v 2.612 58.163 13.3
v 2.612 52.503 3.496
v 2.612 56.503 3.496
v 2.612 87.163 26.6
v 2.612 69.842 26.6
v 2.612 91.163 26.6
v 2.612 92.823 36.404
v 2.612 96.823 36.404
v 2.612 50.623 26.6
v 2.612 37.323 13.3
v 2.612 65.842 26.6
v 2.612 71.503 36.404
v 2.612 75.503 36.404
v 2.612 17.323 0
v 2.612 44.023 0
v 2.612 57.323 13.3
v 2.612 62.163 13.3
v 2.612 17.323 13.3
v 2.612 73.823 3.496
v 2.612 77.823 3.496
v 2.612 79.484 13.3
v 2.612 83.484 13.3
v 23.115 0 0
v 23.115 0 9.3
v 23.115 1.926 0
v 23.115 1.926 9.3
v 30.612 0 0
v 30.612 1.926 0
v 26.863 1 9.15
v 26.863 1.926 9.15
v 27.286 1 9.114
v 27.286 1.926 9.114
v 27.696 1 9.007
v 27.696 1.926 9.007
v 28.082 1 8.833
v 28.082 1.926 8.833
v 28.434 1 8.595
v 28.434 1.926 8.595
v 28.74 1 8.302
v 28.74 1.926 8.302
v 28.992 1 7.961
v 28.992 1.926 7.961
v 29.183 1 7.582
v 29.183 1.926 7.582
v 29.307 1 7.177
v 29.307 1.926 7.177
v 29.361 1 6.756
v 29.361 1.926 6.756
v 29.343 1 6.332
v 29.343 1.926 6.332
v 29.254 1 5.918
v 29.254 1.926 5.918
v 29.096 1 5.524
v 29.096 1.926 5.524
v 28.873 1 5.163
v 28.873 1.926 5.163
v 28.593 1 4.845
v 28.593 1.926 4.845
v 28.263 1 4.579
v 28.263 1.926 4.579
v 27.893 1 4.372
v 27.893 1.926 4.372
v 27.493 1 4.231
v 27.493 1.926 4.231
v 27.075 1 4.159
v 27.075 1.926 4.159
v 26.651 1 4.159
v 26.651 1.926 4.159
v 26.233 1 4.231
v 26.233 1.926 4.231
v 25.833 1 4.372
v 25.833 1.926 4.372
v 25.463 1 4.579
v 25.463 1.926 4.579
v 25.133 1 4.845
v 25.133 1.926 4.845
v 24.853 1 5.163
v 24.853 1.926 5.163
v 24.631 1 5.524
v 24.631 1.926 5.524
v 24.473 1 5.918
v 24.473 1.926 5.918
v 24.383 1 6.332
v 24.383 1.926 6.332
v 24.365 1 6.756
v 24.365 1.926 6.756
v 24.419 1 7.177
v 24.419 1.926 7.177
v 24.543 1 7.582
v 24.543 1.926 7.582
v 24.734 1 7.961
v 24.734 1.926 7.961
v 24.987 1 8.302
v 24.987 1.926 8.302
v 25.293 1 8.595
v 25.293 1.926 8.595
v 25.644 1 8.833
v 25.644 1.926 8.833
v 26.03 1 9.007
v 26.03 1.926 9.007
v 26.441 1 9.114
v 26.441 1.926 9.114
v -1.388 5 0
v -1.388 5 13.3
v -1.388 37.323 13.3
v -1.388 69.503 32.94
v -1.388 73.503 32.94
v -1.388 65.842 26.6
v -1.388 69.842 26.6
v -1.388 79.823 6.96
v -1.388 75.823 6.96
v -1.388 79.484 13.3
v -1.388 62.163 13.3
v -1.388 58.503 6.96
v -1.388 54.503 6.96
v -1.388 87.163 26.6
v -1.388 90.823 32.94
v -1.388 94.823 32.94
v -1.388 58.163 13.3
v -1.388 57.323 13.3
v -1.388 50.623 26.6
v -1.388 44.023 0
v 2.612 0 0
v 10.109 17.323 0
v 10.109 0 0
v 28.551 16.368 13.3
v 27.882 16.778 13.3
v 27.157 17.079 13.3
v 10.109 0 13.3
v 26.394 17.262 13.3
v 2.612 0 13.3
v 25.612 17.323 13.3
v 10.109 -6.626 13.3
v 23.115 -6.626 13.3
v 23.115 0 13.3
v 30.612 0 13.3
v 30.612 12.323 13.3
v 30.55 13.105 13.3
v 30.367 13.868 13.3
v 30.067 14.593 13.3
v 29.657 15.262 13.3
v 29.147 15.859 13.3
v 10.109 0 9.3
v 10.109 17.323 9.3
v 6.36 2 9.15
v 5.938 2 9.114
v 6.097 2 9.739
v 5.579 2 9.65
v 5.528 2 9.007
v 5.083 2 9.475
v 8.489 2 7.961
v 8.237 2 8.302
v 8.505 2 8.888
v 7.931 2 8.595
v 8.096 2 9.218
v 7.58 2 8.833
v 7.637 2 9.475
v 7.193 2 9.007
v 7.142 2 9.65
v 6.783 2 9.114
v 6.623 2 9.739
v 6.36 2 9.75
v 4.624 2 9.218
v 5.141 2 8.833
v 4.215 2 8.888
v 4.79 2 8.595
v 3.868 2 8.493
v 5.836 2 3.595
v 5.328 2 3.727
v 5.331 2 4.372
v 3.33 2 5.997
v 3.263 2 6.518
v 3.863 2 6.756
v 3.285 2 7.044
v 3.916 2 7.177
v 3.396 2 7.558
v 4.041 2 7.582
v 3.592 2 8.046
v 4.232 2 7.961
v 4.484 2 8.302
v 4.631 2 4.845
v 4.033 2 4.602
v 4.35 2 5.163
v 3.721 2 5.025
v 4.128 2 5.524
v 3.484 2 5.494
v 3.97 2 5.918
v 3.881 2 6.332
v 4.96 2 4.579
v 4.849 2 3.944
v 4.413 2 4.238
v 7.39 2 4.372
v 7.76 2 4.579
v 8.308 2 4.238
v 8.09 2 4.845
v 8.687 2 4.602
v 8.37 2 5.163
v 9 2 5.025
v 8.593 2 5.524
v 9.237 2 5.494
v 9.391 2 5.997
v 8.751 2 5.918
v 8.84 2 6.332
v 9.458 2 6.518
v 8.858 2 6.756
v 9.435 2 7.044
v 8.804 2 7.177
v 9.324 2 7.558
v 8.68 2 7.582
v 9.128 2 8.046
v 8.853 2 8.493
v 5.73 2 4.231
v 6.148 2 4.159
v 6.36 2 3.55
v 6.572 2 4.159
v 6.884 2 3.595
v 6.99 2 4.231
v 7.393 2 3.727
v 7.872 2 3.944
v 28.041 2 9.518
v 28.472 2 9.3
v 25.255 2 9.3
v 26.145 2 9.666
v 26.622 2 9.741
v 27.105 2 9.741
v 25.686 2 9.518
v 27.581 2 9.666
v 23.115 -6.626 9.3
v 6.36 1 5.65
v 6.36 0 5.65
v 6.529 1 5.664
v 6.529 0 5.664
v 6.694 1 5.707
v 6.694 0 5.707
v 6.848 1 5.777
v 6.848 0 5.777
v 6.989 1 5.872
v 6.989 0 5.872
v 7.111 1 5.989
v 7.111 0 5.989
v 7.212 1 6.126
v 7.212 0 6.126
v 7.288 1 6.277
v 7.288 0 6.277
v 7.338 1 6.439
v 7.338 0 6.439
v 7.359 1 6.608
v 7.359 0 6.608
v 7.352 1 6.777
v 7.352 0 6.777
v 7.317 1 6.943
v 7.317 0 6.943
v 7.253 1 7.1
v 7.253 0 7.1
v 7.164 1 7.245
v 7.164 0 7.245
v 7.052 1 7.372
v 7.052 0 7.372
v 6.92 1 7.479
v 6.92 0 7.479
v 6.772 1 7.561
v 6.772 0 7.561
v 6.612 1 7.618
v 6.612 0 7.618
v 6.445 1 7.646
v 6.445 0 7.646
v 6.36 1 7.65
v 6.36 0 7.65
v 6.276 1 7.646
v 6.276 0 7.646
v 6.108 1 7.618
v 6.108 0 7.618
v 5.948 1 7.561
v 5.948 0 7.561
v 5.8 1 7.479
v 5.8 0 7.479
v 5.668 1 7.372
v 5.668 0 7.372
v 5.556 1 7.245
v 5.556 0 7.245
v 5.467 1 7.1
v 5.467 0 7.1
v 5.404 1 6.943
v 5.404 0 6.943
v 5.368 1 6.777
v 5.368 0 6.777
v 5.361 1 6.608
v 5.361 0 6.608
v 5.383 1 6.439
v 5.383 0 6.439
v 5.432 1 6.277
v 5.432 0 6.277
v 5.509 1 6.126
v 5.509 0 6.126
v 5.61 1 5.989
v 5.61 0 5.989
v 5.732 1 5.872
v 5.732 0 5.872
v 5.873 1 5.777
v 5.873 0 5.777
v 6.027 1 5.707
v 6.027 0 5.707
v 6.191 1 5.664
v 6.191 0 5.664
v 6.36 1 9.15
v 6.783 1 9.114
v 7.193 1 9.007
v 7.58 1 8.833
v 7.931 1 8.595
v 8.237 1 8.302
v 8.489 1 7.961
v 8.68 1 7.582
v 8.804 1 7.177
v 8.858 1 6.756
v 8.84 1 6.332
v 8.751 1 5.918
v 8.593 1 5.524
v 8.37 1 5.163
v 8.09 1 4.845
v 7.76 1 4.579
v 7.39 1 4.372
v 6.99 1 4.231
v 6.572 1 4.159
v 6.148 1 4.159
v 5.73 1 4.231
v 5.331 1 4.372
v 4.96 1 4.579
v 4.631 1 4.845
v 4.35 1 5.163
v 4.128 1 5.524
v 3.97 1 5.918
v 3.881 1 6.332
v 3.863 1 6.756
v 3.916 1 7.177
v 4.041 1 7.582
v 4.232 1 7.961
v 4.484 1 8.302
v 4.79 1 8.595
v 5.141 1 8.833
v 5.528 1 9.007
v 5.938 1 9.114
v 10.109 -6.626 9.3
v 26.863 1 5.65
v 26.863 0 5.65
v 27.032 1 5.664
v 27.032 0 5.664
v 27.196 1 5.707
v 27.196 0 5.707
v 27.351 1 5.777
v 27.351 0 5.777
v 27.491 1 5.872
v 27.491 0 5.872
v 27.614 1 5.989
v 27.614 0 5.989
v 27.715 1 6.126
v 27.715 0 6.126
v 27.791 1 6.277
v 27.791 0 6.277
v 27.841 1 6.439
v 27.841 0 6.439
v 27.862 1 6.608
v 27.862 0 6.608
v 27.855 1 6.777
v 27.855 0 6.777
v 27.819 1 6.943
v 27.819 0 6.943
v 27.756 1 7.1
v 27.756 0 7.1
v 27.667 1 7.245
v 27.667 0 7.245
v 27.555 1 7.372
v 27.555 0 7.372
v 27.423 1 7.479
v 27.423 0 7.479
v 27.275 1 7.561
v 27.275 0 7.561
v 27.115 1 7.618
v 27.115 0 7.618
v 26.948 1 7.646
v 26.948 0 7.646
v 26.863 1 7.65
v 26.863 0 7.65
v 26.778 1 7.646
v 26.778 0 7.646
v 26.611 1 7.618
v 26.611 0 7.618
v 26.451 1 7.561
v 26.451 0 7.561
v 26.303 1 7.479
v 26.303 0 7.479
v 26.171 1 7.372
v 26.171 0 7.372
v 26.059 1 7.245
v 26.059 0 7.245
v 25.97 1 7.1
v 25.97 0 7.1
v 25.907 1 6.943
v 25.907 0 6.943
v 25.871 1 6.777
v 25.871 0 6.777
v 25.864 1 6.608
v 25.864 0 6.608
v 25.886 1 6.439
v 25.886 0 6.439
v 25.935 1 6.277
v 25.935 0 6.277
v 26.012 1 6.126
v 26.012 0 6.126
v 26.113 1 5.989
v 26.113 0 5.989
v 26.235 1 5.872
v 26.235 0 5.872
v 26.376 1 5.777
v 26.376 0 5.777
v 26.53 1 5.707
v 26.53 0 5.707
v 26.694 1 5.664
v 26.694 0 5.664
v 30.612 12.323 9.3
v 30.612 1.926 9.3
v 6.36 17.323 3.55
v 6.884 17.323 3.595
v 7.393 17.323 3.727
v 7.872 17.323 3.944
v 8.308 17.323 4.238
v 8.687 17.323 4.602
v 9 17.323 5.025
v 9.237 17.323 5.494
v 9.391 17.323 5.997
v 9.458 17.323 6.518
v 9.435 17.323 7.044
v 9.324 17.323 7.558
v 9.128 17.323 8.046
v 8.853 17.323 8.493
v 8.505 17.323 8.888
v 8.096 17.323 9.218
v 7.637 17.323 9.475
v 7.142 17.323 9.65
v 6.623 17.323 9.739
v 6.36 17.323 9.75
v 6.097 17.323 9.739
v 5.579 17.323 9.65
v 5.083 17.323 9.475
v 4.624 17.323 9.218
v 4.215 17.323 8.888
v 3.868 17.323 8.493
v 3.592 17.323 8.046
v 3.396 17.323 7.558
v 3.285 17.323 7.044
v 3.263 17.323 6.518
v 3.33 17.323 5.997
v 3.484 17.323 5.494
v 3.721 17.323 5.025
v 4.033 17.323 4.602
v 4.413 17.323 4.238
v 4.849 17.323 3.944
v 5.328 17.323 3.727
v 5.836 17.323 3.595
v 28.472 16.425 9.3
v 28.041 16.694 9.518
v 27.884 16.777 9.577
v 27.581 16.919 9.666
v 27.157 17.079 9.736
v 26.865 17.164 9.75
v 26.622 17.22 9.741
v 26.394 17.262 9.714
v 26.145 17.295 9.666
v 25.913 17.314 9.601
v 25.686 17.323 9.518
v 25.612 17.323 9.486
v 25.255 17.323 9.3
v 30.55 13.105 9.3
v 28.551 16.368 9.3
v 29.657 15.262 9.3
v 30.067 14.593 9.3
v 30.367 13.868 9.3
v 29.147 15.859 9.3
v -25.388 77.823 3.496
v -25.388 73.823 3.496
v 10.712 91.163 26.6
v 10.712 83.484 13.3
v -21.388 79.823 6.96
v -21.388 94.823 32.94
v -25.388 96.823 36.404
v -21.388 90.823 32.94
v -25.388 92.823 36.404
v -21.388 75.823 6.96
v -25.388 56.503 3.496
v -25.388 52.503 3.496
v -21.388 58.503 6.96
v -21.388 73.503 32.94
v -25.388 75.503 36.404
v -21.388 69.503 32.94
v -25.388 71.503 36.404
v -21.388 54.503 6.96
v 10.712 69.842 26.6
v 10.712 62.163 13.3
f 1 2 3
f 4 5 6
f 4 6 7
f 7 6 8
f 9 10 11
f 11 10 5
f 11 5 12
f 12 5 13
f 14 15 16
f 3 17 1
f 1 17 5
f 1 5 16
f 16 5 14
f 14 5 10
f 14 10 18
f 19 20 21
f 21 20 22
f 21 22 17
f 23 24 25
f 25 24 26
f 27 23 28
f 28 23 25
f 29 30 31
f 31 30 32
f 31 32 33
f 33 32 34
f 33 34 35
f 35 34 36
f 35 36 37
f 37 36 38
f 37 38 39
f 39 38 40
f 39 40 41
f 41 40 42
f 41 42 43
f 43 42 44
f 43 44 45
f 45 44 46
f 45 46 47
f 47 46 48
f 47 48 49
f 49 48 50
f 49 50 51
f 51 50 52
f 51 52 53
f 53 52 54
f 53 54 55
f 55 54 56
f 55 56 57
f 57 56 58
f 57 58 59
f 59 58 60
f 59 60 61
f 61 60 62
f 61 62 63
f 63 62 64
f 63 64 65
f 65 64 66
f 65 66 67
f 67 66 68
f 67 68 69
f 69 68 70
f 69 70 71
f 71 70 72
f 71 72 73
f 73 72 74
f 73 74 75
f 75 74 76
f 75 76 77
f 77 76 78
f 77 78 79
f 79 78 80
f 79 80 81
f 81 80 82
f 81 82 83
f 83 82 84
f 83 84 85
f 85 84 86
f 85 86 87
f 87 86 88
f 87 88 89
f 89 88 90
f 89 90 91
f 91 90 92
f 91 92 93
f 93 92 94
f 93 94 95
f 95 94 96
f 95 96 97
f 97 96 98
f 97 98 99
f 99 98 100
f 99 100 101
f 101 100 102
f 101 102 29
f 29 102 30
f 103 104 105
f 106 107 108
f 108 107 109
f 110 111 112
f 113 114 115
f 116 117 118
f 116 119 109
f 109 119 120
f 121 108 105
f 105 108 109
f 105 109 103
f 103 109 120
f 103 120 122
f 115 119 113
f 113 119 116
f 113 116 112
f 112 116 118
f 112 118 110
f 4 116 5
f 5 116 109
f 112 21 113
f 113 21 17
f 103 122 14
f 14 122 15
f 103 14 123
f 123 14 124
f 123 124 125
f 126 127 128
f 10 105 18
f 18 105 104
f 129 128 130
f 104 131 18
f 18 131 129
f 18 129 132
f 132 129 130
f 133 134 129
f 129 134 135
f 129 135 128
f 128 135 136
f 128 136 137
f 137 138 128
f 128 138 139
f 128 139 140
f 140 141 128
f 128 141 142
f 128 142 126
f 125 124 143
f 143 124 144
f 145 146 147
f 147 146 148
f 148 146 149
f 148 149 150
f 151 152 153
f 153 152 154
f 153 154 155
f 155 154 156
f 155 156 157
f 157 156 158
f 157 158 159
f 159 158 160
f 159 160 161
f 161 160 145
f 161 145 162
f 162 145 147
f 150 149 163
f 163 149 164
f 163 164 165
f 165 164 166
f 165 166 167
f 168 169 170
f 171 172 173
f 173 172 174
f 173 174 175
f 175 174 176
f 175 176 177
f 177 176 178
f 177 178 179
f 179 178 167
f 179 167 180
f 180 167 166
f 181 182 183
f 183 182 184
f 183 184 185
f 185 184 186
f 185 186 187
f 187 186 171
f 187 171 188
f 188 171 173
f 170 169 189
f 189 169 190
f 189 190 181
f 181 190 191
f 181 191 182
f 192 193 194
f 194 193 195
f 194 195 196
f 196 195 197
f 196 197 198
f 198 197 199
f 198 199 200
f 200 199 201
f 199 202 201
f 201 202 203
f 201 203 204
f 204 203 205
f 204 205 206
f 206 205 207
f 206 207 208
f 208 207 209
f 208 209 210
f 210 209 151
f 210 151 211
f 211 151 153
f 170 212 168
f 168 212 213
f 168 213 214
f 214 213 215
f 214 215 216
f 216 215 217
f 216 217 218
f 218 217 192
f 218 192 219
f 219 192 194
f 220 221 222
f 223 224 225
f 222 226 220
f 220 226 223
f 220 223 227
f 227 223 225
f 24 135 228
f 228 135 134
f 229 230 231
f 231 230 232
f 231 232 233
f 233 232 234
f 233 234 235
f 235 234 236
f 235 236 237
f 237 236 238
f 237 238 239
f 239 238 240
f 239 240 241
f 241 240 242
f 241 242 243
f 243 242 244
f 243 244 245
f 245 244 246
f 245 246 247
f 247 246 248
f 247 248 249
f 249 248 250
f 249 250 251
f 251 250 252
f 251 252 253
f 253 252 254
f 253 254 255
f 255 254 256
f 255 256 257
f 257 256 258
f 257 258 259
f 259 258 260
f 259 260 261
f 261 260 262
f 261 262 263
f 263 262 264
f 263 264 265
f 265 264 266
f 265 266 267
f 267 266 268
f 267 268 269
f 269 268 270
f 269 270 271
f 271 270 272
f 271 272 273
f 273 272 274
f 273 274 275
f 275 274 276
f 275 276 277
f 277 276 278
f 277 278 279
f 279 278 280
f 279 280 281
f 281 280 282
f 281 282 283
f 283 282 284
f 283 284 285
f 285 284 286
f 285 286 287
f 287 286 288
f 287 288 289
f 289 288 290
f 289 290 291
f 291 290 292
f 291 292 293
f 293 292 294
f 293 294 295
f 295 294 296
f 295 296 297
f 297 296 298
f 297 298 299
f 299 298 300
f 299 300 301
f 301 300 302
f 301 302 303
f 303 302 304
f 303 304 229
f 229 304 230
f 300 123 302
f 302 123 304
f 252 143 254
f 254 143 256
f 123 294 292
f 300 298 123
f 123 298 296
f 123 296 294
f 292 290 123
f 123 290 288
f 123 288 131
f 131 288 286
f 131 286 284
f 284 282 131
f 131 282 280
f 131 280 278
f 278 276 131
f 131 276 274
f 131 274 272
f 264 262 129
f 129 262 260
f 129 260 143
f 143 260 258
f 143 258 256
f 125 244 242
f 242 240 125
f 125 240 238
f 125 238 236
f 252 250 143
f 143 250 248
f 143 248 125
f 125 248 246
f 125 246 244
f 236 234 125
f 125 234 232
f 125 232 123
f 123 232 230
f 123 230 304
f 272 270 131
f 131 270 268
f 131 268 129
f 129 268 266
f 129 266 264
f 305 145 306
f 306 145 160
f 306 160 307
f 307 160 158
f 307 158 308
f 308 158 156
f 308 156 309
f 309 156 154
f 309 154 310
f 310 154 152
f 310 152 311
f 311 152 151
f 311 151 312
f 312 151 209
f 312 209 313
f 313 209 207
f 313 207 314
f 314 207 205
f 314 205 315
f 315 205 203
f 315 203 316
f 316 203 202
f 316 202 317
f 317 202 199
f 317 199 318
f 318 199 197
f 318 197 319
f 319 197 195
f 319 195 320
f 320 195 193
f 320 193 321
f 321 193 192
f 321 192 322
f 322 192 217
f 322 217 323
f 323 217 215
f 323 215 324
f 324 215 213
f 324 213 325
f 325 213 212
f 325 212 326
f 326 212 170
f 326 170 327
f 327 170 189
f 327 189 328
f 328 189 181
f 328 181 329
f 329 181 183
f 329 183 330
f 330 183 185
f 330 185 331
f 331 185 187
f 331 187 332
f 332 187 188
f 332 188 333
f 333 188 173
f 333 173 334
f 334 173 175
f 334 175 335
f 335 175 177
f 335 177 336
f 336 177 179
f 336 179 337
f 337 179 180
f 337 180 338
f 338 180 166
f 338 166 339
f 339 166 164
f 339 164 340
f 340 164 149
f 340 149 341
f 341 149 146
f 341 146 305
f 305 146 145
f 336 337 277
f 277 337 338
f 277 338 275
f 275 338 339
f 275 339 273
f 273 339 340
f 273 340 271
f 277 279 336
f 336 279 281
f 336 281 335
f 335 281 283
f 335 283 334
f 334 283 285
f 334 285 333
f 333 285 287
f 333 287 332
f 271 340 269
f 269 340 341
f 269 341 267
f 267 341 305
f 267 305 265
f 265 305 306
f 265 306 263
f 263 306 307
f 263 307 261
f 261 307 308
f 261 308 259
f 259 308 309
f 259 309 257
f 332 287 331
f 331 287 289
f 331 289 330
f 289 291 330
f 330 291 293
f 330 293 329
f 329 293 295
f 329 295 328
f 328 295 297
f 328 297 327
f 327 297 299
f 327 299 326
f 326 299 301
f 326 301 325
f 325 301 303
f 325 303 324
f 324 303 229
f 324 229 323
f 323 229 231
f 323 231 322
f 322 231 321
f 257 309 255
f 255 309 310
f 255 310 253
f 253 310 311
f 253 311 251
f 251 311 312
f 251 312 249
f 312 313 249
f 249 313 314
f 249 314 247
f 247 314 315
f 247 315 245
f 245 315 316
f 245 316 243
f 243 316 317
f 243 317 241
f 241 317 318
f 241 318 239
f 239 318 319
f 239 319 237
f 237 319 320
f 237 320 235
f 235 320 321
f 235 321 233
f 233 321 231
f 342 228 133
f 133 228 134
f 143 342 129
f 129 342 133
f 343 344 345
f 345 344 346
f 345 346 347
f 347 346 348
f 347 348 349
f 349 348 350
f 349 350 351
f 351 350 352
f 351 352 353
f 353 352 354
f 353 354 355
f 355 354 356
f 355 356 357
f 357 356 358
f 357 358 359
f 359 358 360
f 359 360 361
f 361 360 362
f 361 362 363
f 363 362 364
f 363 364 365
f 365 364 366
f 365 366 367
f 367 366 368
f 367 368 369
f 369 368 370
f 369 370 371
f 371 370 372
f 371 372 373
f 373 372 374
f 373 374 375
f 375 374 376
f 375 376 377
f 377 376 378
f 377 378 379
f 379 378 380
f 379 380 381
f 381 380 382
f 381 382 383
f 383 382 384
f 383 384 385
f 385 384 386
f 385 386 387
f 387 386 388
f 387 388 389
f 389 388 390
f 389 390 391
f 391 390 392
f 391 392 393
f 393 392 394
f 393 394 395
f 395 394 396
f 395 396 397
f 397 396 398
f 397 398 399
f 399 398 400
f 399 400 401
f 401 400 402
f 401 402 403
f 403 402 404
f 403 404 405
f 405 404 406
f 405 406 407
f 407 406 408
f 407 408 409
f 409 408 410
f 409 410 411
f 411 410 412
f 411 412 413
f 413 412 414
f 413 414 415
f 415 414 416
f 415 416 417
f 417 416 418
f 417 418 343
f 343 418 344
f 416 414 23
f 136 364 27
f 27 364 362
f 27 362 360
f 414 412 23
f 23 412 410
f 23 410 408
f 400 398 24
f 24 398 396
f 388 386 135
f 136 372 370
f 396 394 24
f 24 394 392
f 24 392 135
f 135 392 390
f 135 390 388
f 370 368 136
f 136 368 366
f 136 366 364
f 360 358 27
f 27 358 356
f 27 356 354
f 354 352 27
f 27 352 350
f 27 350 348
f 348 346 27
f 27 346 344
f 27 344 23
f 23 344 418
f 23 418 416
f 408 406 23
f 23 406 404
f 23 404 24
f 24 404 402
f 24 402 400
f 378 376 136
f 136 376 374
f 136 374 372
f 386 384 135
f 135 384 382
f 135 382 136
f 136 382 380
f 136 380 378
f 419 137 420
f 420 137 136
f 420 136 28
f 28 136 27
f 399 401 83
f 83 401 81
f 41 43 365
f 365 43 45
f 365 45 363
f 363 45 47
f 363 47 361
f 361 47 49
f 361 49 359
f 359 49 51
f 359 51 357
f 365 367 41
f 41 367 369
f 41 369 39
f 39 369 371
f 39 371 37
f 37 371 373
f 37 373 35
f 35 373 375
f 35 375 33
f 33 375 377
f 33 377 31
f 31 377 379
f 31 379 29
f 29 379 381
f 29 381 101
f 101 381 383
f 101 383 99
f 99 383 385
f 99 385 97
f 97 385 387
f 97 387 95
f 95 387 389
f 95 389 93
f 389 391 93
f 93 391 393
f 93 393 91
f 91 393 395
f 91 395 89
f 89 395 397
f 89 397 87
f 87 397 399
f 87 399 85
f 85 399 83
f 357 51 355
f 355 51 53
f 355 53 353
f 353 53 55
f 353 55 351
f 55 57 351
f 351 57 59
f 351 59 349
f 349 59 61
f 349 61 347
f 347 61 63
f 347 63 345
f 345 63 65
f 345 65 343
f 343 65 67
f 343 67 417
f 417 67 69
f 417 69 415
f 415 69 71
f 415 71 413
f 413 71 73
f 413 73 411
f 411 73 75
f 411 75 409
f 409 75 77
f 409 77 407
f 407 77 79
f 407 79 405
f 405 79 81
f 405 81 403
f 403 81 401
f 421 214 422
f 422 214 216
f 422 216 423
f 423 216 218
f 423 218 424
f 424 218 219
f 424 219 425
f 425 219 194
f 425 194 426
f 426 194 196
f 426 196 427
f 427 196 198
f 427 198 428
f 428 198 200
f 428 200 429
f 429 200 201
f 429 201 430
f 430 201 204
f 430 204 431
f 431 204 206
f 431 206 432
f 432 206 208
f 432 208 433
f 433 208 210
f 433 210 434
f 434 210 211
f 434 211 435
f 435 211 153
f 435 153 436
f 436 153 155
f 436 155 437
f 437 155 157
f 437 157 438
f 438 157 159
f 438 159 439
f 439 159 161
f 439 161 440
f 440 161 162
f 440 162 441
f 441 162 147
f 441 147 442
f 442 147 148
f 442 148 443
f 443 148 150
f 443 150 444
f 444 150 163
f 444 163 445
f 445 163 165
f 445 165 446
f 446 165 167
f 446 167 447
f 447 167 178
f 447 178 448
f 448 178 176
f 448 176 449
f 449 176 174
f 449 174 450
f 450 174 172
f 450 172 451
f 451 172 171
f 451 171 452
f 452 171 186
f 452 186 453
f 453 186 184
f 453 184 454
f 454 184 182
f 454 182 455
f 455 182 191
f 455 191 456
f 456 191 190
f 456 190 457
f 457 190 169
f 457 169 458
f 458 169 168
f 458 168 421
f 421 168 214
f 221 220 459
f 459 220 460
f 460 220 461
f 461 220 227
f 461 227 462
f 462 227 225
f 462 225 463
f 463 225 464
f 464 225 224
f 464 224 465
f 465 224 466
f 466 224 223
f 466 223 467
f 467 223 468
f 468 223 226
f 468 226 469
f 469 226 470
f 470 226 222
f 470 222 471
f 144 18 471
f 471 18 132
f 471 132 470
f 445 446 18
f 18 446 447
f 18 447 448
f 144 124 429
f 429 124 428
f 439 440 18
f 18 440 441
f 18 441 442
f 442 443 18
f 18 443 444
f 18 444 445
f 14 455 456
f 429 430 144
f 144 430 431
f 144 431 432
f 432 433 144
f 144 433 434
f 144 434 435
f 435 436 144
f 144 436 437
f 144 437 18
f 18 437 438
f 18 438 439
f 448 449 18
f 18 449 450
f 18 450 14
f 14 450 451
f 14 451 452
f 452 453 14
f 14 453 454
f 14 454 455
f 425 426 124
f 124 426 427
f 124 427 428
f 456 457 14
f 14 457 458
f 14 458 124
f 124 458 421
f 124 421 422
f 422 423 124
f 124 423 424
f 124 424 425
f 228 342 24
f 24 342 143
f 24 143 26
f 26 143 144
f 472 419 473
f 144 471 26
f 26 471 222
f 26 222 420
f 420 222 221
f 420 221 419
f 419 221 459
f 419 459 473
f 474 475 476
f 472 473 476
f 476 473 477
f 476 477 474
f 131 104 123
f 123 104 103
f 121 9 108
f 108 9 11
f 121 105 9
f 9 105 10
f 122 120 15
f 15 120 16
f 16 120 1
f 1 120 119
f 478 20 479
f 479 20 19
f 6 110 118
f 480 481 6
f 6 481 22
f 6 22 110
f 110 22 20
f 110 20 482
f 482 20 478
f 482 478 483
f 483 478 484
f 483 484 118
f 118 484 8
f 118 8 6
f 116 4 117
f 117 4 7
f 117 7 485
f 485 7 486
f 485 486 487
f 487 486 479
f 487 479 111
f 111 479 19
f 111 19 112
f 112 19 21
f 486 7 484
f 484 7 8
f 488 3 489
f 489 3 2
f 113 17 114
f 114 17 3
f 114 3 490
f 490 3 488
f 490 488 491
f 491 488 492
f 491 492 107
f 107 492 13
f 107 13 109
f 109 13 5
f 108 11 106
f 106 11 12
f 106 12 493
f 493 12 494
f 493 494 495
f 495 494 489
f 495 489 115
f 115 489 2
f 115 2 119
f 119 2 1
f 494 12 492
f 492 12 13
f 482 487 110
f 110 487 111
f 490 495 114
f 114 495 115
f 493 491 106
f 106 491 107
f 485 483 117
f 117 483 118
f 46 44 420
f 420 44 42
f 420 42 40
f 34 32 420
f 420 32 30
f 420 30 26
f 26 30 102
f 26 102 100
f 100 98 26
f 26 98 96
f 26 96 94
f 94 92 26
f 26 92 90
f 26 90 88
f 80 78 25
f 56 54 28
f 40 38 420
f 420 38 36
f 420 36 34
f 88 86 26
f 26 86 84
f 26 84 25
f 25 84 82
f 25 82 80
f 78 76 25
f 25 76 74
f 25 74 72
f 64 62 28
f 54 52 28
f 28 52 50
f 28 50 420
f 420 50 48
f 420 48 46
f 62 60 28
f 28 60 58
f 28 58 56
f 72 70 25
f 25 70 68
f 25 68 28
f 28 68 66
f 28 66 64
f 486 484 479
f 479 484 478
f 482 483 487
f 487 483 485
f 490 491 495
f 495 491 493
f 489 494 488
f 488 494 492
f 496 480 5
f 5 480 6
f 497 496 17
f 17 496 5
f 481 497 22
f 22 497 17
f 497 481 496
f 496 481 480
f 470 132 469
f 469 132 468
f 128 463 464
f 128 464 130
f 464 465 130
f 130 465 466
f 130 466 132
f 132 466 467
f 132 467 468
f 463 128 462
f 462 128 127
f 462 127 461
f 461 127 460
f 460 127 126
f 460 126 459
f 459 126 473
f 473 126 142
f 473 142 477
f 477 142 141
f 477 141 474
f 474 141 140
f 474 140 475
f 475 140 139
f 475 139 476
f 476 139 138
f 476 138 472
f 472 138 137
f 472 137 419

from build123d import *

# Parameters (mm, degrees)
SKETCH1_W             = 7.497163216
SKETCH1_H             = 13.3
SKETCH1_R             = 1
BOSS_EXTRUDE1_DEPTH   = 2
BOSS_EXTRUDE1_2_DEPTH = 2
SKETCH3_R             = 2.5
CUT_EXTRUDE1_DEPTH    = 1
BOSS_EXTRUDE3_DEPTH   = 1
SKETCH5_R             = 3.1
BOSS_EXTRUDE4_DEPTH   = 15.323280282
CUT_EXTRUDE2_REACH    = 37.51
SKETCH6_W             = 9.3
SKETCH6_H             = 13.397572085
BOSS_EXTRUDE5_START   = -13.397572085
BOSS_EXTRUDE5_DEPTH   = 13.397572085
SKETCH8_W             = 13.005673568
SKETCH8_H             = 3
BOSS_EXTRUDE6_DEPTH   = 10.5515
SKETCH9_W             = 13.3
SKETCH9_H             = 12.323280282
BOSS_EXTRUDE7_DEPTH   = 4
SKETCH10_W            = 4
SKETCH10_H            = 13.3
BOSS_EXTRUDE8_DEPTH   = 70
BOSS_EXTRUDE9_DEPTH   = 13.3
SKETCH15_W            = 4
SKETCH15_H            = 20
BOSS_EXTRUDE13_DEPTH  = 20
SKETCH16_W            = 4
SKETCH16_H            = 20
BOSS_EXTRUDE14_DEPTH  = 30
CUT_EXTRUDE3_DEPTH    = 20
BOSS_EXTRUDE15_DEPTH  = 4
BOSS_EXTRUDE16_DEPTH  = 20
SKETCH21_W            = 7.497163216
SKETCH21_H            = 9.3
CUT_EXTRUDE4_DEPTH    = 2
BOSS_EXTRUDE18_DEPTH  = 4
CUT_EXTRUDE5_DEPTH    = 4
BOSS_EXTRUDE20_DEPTH  = 8.1
FILLET1_R             = 5


with BuildPart() as part:
    # Sketch1 → Boss-Extrude1 (new body)
    with BuildSketch(Plane(origin=(0, 0, 0), x_dir=(1, 0, 0), z_dir=(0, 1, 0))):
        with Locations((6.360378056, -6.65)):
            Rectangle(SKETCH1_W, SKETCH1_H)
        with Locations(Location((6.360378056, -6.65, 0), (0, 0, 270))):
            Circle(SKETCH1_R, mode=Mode.SUBTRACT)
    extrude(amount=BOSS_EXTRUDE1_DEPTH)


with BuildPart() as body_2:
    # Sketch1 → Boss-Extrude1 2 (new body)
    with BuildSketch(Plane(origin=(0, 0, 0), x_dir=(1, 0, 0), z_dir=(0, 1, 0))):
        with Locations((26.86321484, -6.65)):
            Rectangle(SKETCH1_W, SKETCH1_H)
        with Locations(Location((26.86321484, -6.65, 0), (0, 0, 270))):
            Circle(SKETCH1_R, mode=Mode.SUBTRACT)
    extrude(amount=BOSS_EXTRUDE1_2_DEPTH)


with BuildPart() as cut_extrude1_tool:
    # Sketch3 → Cut-Extrude1 (new body)
    with BuildSketch(Plane(origin=(0, 2, 0), x_dir=(1, 0, 0), z_dir=(0, 1, 0))):
        with Locations(Location((26.86321484, -6.65, 0), (0, 0, 270))):
            Circle(SKETCH3_R)
        with Locations(Location((6.360378056, -6.65, 0), (0, 0, 270))):
            Circle(SKETCH3_R)
    extrude(amount=-CUT_EXTRUDE1_DEPTH)


with BuildPart() as part_1:
    add(part.part)

    # Cut-Extrude1: cut by cut_extrude1_tool
    add(cut_extrude1_tool.part, mode=Mode.SUBTRACT)



with BuildPart() as body_2_1:
    add(body_2.part)

    # Cut-Extrude1: cut by cut_extrude1_tool
    add(cut_extrude1_tool.part, mode=Mode.SUBTRACT)


with BuildPart() as part_2:
    add(part_1.part)

    add(body_2_1.part)  # Boss-Extrude3 merges body 2
    # Sketch4 → Boss-Extrude3 (add)
    with BuildSketch(Plane.XY.offset(13.3)):
        Polygon((10.108959664, 0), (10.108959664, -6.625791341), (23.114633232, -6.625791341), (23.114633232, 2), (10.108959664, 2), align=None)
    extrude(amount=-BOSS_EXTRUDE3_DEPTH)

    # Sketch5 → Boss-Extrude4 (add)
    with BuildSketch(Plane(origin=(0, 2, 0), x_dir=(1, 0, 0), z_dir=(0, 1, 0))):
        Polygon((10.108959664, 0), (2.611796448, 0), (2.611796448, -4), (2.611796448, -9.3), (2.611796448, -12.3), (2.611796448, -13.3), (30.611796448, -13.3), (30.611796448, -12.3), (30.611796448, -9.3), (30.611796448, -4), (30.611796448, 0), (23.114633232, 0), (23.114633232, -4), (23.114633232, -9.3), (23.114633232, -12.3), (10.108959664, -12.3), (10.108959664, -9.3), (10.108959664, -4), align=None)
        with Locations(Location((6.360378056, -6.65, 0), (0, 0, 270))):
            Circle(SKETCH5_R, mode=Mode.SUBTRACT)
        with Locations(Location((26.86321484, -6.65, 0), (0, 0, 270))):
            Circle(SKETCH5_R, mode=Mode.SUBTRACT)
    extrude(amount=BOSS_EXTRUDE4_DEPTH)

    # Cut-Extrude2: up to this face of the body (flat: up to its plane)
    cut_extrude2_end = Plane(part_2.part.faces().sort_by_distance((23.114633232, 8.661640141, 6.15))[0])
    # Sketch6 → Cut-Extrude2 (cut, up to the picked face)
    with BuildSketch(Plane(origin=(30.611796448, 0, 0), x_dir=(0, 0, -1), z_dir=(1, 0, 0)), mode=Mode.PRIVATE) as cut_extrude2_sk1:
        with Locations((-4.65, 10.62449424)):
            Rectangle(SKETCH6_W, SKETCH6_H)
    cut_extrude2_tool1 = split(extrude(cut_extrude2_sk1.sketch, amount=-CUT_EXTRUDE2_REACH, mode=Mode.PRIVATE), bisect_by=cut_extrude2_end, keep=Keep.BOTH, mode=Mode.PRIVATE)
    add(cut_extrude2_tool1.solids().sort_by(Axis((30.611796, 10.624494, 4.65), (-1, 0, 0)))[0], mode=Mode.SUBTRACT)

    # Sketch7 → Boss-Extrude5 (add)
    with BuildSketch(Plane(origin=(0, 17.323280282, 0), x_dir=(1, 0, 0), z_dir=(0, 1, 0)).offset(BOSS_EXTRUDE5_START)):
        with BuildLine():
            Line((28.471785634, -9.3), (30.611796448, -9.3))
            Line((30.611796448, -9.3), (30.611796448, -13.3))
            Line((30.611796448, -13.3), (10.108959664, -13.3))
            Line((10.108959664, -13.3), (10.108959664, -9.3))
            Line((10.108959664, -9.3), (25.254644046, -9.3))
            ThreePointArc((25.254644046, -9.3), (26.86321484, -9.75), (28.471785634, -9.3))
        make_face()
    extrude(amount=BOSS_EXTRUDE5_DEPTH)

    # Sketch8 → Boss-Extrude6 (add, through all)
    with BuildSketch(Plane.XZ.offset(-3.925708197)):
        with Locations((16.611796448, 10.8)):
            Rectangle(SKETCH8_W, SKETCH8_H)
    extrude(amount=BOSS_EXTRUDE6_DEPTH)

    # Sketch9 → Boss-Extrude7 (add)
    with BuildSketch(Plane.ZY.offset(-2.611796448)):
        with Locations((6.65, 11.161640141)):
            Rectangle(SKETCH9_W, SKETCH9_H)
    extrude(amount=BOSS_EXTRUDE7_DEPTH)

    # Sketch10 → Boss-Extrude8 (add)
    with BuildSketch(Plane(origin=(0, 17.323280282, 0), x_dir=(1, 0, 0), z_dir=(0, 1, 0))):
        with Locations((0.611796448, -6.65)):
            Rectangle(SKETCH10_W, SKETCH10_H)
    extrude(amount=BOSS_EXTRUDE8_DEPTH)

    # Sketch11 → Boss-Extrude9 (add)
    with BuildSketch(Plane.XY.offset(13.3)):
        Polygon((-1.388203552, 5), (2.611796448, 0), (2.611796448, 5), align=None)
    extrude(amount=-BOSS_EXTRUDE9_DEPTH)

    # Sketch15 → Boss-Extrude13 (add)
    with BuildSketch(Plane.XY.offset(13.3)):
        with Locations((0.611796448, 47.323280282)):
            Rectangle(SKETCH15_W, SKETCH15_H)
    extrude(amount=BOSS_EXTRUDE13_DEPTH)

    # Sketch16 → Boss-Extrude14 (add)
    with BuildSketch(Plane(origin=(0, 57.323280282, 0), x_dir=(1, 0, 0), z_dir=(0, 1, 0))):
        with Locations((0.611796448, -23.3)):
            Rectangle(SKETCH16_W, SKETCH16_H)
    extrude(amount=BOSS_EXTRUDE14_DEPTH)

    # Sketch17 → Cut-Extrude3 (cut)
    with BuildSketch(Plane.ZY.offset(1.388203552)):
        Polygon((13.3, 87.323280282), (0, 87.323280282), (0, 57.323280282), (0, 44.023280282), (13.3, 57.323280282), align=None)
        Polygon((33.3, 87.323280282), (26.6, 87.323280282), (26.6, 50.623280282), (13.3, 37.323280282), (26.6, 37.323280282), (33.3, 37.323280282), align=None)
    extrude(amount=-CUT_EXTRUDE3_DEPTH, mode=Mode.SUBTRACT)

    # Sketch18 → Boss-Extrude15 (add)
    with BuildSketch(Plane.ZY.offset(1.388203552)):
        Polygon((3.495517328, 77.823280282), (36.404482672, 96.823280282), (36.404482672, 92.823280282), (3.495517328, 73.823280282), align=None)
        Polygon((3.495517328, 56.502772207), (36.404482672, 75.502772207), (36.404482672, 71.502772207), (3.495517328, 52.502772207), align=None)
    extrude(amount=-BOSS_EXTRUDE15_DEPTH)

    # Sketch19 → Boss-Extrude16 (add)
    with BuildSketch(Plane.ZY.offset(1.388203552)):
        Polygon((3.495517328, 77.823280282), (6.959618943, 79.823280282), (6.959618943, 75.823280282), (3.495517328, 73.823280282), align=None)
        Polygon((3.495517328, 56.502772207), (6.959618943, 58.502772207), (6.959618943, 54.502772207), (3.495517328, 52.502772207), align=None)
        Polygon((36.404482672, 75.502772207), (32.940381057, 73.502772207), (32.940381057, 69.502772207), (36.404482672, 71.502772207), align=None)
        Polygon((36.404482672, 92.823280282), (32.940381057, 90.823280282), (32.940381057, 94.823280282), (36.404482672, 96.823280282), align=None)
    extrude(amount=BOSS_EXTRUDE16_DEPTH)

    # Sketch21 → Cut-Extrude4 (cut)
    with BuildSketch(Plane(origin=(0, 3.925708197, 0), x_dir=(1, 0, 0), z_dir=(0, 1, 0))):
        with Locations((26.86321484, -4.65)):
            Rectangle(SKETCH21_W, SKETCH21_H)
    extrude(amount=-CUT_EXTRUDE4_DEPTH, mode=Mode.SUBTRACT)

    # Sketch22 → Boss-Extrude18 (add)
    with BuildSketch(Plane.ZY.offset(21.388203552)):
        Polygon((3.495517328, 77.823280282), (36.404482672, 96.823280282), (36.404482672, 92.823280282), (3.495517328, 73.823280282), align=None)
        Polygon((3.495517328, 56.502772207), (3.495517328, 52.502772207), (36.404482672, 71.502772207), (36.404482672, 75.502772207), align=None)
    extrude(amount=BOSS_EXTRUDE18_DEPTH)

    # Sketch23 → Cut-Extrude5 (cut)
    with BuildSketch(Plane(origin=(2.611796448, 0, 0), x_dir=(0, 0, -1), z_dir=(1, 0, 0))):
        Polygon((-13.3, 87.323280282), (-13.3, 83.483900992), (-19.95, 87.323280282), align=None)
    extrude(amount=-CUT_EXTRUDE5_DEPTH, mode=Mode.SUBTRACT)

    # Sketch24 → Boss-Extrude20 (add)
    with BuildSketch(Plane(origin=(2.611796448, 0, 0), x_dir=(0, 0, -1), z_dir=(1, 0, 0))):
        Polygon((-26.6, 91.162659572), (-13.300321898, 83.48408684), (-13.3, 62.163392916), (-26.599678102, 69.841965649), align=None)
    extrude(amount=BOSS_EXTRUDE20_DEPTH)

    # Fillet1
    # the kernel refuses this fillet: 5 mm, written as the material it takes off along each edge
    with BuildSketch(Plane(origin=(30.611796448, 17.323280282, -3.2), x_dir=(-1, 0, 0), z_dir=(0, 0, 1))) as fillet1_piece_1:
        with BuildLine():
            CenterArc((FILLET1_R, FILLET1_R), FILLET1_R, 180, 90)
            Line((0, FILLET1_R), (0, 0))
            Line((0, 0), (FILLET1_R, 0))
        make_face()
    extrude(amount=29, mode=Mode.SUBTRACT)


solid = part_2.part
